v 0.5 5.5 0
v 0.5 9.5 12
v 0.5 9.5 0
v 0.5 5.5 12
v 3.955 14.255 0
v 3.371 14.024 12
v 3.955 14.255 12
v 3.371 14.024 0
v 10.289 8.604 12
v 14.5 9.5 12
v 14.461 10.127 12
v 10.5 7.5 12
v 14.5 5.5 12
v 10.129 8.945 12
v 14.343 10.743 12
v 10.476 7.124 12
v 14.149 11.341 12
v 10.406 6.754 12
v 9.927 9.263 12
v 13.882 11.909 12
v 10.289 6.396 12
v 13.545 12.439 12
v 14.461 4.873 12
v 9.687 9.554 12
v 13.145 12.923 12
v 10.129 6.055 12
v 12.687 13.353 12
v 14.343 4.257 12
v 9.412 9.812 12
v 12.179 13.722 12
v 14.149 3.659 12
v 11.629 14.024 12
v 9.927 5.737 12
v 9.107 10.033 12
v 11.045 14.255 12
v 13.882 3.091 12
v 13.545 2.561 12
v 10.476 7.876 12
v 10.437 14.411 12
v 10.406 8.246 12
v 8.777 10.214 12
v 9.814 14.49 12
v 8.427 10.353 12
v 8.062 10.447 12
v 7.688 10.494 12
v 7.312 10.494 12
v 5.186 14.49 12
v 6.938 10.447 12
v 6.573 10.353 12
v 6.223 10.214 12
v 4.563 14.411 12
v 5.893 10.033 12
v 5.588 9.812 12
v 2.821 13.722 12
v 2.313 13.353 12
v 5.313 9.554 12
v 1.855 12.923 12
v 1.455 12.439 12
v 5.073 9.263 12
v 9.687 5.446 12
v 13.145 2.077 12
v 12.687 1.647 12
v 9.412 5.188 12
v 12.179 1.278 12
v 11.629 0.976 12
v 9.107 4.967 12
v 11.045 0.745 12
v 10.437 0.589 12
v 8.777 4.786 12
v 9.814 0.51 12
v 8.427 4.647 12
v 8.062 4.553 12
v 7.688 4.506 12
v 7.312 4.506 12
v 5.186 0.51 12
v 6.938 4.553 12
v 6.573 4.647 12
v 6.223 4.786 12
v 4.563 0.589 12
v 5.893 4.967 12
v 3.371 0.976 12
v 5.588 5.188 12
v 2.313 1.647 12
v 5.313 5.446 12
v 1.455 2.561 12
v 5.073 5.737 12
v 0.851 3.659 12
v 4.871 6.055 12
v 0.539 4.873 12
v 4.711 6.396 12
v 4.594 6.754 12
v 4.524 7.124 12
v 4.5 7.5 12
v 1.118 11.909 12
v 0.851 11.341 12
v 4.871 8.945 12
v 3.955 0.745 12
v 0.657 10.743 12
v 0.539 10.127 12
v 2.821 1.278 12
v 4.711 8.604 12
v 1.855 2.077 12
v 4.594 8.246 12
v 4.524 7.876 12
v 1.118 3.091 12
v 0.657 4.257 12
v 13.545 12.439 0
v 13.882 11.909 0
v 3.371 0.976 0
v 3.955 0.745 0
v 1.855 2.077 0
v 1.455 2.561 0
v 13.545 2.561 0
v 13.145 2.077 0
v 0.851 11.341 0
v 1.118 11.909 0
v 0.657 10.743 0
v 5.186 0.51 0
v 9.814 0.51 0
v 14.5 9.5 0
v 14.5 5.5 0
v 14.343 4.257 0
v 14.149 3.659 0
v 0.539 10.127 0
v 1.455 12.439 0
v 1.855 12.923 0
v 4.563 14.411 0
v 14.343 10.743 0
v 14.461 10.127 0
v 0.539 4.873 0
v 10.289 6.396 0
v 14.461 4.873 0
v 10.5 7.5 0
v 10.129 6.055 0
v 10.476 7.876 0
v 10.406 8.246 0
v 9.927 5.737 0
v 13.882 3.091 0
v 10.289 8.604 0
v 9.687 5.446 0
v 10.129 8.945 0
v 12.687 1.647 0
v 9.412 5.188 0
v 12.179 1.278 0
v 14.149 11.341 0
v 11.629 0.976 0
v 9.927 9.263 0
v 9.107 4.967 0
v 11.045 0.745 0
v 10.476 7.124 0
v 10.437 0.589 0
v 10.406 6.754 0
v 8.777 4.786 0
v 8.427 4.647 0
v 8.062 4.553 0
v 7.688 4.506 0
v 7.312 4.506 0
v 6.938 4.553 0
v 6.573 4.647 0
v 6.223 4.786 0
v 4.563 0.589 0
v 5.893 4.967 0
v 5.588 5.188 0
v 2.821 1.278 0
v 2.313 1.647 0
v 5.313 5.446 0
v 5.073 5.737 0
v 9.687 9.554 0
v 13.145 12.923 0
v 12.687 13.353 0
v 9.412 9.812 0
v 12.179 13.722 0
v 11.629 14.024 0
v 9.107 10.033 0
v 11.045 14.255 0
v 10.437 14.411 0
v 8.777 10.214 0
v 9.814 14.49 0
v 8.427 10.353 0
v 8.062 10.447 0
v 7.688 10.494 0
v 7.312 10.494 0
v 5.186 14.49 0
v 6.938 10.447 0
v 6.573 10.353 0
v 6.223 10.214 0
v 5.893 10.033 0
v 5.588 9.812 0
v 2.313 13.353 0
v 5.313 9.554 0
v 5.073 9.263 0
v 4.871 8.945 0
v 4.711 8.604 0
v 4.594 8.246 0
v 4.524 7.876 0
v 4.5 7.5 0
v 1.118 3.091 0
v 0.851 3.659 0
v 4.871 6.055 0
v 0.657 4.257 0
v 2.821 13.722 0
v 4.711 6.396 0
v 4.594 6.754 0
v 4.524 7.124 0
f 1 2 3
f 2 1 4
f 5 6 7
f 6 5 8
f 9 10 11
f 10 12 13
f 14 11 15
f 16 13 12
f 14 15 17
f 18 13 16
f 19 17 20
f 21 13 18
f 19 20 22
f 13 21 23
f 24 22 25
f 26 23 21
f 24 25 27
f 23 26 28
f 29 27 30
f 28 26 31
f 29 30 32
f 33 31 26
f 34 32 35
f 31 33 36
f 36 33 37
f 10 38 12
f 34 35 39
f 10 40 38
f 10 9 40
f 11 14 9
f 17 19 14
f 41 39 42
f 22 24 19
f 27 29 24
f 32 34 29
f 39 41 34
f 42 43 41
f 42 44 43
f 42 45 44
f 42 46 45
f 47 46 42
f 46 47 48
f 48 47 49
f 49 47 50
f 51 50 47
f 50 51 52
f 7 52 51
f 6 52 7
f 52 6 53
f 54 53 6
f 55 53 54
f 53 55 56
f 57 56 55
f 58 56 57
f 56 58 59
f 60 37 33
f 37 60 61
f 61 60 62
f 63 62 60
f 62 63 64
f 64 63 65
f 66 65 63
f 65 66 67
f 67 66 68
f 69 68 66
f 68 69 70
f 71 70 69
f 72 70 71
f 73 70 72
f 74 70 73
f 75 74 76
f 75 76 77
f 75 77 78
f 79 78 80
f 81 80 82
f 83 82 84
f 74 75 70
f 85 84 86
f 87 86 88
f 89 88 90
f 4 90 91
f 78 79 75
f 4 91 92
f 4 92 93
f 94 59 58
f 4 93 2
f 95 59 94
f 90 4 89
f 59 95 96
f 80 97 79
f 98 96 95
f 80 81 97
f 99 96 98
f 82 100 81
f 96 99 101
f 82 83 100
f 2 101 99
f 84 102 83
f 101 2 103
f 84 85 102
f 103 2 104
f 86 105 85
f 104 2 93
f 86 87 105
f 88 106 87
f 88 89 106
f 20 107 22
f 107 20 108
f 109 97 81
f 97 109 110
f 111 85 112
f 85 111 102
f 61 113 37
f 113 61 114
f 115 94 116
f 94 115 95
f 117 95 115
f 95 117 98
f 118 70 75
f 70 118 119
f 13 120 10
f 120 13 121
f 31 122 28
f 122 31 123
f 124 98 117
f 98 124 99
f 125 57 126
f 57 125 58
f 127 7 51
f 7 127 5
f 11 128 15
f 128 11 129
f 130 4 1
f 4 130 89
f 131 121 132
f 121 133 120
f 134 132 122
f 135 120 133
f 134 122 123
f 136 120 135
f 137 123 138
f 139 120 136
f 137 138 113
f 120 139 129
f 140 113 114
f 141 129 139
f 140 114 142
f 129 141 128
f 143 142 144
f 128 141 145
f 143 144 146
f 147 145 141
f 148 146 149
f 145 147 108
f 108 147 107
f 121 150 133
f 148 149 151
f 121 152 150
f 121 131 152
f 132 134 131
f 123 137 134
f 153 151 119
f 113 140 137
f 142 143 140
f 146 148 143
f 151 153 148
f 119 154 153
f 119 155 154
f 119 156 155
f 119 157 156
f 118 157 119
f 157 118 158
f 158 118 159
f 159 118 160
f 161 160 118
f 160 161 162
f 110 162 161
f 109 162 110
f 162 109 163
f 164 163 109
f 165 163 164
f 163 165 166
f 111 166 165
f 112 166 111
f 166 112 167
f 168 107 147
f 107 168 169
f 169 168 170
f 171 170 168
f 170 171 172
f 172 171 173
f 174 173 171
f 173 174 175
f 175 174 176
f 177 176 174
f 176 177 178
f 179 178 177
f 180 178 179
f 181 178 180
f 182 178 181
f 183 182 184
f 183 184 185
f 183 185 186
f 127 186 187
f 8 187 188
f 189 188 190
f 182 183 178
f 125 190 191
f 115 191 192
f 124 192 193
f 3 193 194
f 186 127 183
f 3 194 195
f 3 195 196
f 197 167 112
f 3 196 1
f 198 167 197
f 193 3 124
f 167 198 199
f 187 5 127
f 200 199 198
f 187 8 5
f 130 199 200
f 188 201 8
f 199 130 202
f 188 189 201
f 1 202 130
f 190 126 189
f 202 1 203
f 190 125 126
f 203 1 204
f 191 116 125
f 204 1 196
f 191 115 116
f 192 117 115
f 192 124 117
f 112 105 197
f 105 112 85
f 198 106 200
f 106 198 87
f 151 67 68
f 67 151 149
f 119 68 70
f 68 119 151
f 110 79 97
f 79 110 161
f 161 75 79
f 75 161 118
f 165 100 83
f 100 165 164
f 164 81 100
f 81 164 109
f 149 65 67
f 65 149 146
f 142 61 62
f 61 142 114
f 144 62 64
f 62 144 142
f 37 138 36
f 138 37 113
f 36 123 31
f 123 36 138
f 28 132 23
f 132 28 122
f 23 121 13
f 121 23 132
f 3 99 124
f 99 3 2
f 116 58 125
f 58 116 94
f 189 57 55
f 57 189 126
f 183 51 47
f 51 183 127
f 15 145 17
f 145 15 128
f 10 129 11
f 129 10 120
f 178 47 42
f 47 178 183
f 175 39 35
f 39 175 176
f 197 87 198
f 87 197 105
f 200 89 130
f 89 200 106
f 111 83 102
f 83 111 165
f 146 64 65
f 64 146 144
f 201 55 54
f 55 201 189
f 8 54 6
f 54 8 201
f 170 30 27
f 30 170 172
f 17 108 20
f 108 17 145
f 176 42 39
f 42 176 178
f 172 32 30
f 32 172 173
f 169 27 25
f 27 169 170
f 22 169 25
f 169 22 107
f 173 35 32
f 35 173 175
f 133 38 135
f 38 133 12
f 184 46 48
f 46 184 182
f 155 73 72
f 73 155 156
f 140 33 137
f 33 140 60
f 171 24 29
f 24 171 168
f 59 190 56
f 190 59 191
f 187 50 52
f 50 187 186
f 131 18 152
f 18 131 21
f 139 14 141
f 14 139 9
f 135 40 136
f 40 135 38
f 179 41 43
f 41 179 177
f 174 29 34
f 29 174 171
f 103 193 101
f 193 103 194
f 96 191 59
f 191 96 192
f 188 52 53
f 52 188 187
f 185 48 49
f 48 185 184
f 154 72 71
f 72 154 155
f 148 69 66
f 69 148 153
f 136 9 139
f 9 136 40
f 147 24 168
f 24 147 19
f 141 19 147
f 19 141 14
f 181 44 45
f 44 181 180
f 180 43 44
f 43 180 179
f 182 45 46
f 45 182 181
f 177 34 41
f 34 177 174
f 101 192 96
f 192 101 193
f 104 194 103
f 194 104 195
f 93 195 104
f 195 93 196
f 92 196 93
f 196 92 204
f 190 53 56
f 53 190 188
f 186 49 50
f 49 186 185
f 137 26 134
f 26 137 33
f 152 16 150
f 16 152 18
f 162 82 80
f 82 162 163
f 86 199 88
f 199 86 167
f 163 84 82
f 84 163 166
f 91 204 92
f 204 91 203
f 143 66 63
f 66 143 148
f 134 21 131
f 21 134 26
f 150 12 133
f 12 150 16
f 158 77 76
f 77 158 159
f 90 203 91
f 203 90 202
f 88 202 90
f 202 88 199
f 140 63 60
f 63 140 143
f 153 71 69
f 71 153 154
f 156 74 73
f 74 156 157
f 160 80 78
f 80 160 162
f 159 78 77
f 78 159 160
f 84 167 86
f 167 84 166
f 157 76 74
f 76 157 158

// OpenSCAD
// Generated by SolidPython 1.1.3 on 2023-01-30 14:07:04
$fn = 50;


difference() {
	union() {
		translate(v = [7.5000000000, 7.5000000000, 0]) {
			rotate(a = [0, 0, 0]) {
				hull() {
					translate(v = [-2.0000000000, 2.0000000000, 0]) {
						rotate(a = [0, 0, 0]) {
							translate(v = [0, 0, 0]) {
								rotate(a = [0, 0, 0]) {
									cylinder(h = 12, r = 5);
								}
							}
						}
					}
					translate(v = [2.0000000000, 2.0000000000, 0]) {
						rotate(a = [0, 0, 0]) {
							translate(v = [0, 0, 0]) {
								rotate(a = [0, 0, 0]) {
									cylinder(h = 12, r = 5);
								}
							}
						}
					}
					translate(v = [-2.0000000000, -2.0000000000, 0]) {
						rotate(a = [0, 0, 0]) {
							translate(v = [0, 0, 0]) {
								rotate(a = [0, 0, 0]) {
									cylinder(h = 12, r = 5);
								}
							}
						}
					}
					translate(v = [2.0000000000, -2.0000000000, 0]) {
						rotate(a = [0, 0, 0]) {
							translate(v = [0, 0, 0]) {
								rotate(a = [0, 0, 0]) {
									cylinder(h = 12, r = 5);
								}
							}
						}
					}
				}
			}
		}
	}
	union() {
		translate(v = [7.5000000000, 7.5000000000, 0]) {
			rotate(a = [0, 0, 0]) {
				translate(v = [0, 0, -50]) {
					rotate(a = [0, 0, 0]) {
						cylinder(h = 100, r = 3.0000000000);
					}
				}
			}
		}
	}
}
/***********************************************
*********      SolidPython code:      **********
************************************************
 
from solid import *
import os
import subprocess

import oomB

import opsc_library_gen

mode = "laser"
#mode = "3d_print"

defined_objects = {}

radius_dict = {}
countersunk_dict = {}


def set_mode(m):
    global mode
    mode = m
    radius_dict['M6'] = 6.5/2
    radius_dict['M3'] = 3.3/2
    if mode == "laser":
        radius_dict['M6'] = 6/2
        radius_dict['M3'] = 3/2

    countersunk_dict['M3'] = {}
    countersunk_dict['M3']['little_rad'] = radius_dict['M3']
    countersunk_dict['M3']['big_rad'] = (5.5+0.6)/2
    if mode == "laser":
        countersunk_dict['M3']['big_rad'] = (4.75+0.6)/2
        countersunk_dict['M3']['little_rad'] = (4.75+0.6)/2

    countersunk_dict['M3']['height'] = 1.7


def opsc_make_object(filename, objects, save_type="none",resolution=50, layers = 1, tilediff = 200, mode="laser"):
    set_mode(mode)
    save_type = save_type.lower()
    os.makedirs(os.path.dirname(filename), exist_ok=True)
    final_object = opsc_get_object(objects)
    # Save the final object to the specified filename    
    scad_render_to_file(final_object, filename, file_header='$fn = %s;' % resolution, include_orig_code=True)
    if mode == "laser":
        filename_laser = filename.replace(".scad","-flat.scad")
        scad_render_to_file(getLaser(final_object, layers=layers, tilediff=tilediff), filename_laser, file_header='$fn = %s;' % resolution, include_orig_code=True)
        if save_type == "all":
            saveToAll(filename_laser)
        elif save_type == "dxf":
            saveToDxf(filename_laser)
    if save_type == "all":
        saveToAll(filename)
    elif save_type == "dxf":
        saveToDxf(filename)


def opsc_get_object(objects):
    # Create the solidpython objects
    positive_objects = [get_opsc_item(obj) for obj in objects if obj['type'] == 'positive']
    negative_objects = [get_opsc_item(obj) for obj in objects if obj['type'] == 'negative']
    # Union the positive objects
    positive_object = union()(*positive_objects)
    # Union the negative objects
    negative_object = union()(*negative_objects)
    # Create the final object by subtracting the negative objects from the positive objects
    return difference()(positive_object, negative_object)

def get_opsc_item(params):
    # A dictionary to map radius string values to numerical values
    #radius_dict = {'small': 5, 'medium': 10, 'large': 15}
    # An array of function names for basic shapes
    basic_shapes = ['cube', 'sphere', 'cylinder']
    
    # An array of function names for other shapes
    other_shapes = ['hole', 'slot', 'rounded_rectangle', 'countersunk']
    


    # Convert radius to r if present, and remove radius from the params dictionary
    if 'radius' in params:
        if isinstance(params['radius'], str):
            # Use the radius_dict to map the radius string value to a numerical value
            params['r'] = radius_dict[params['radius']]
        else:
            params['r'] = params['radius']
        del params['radius']
    

    # Check if the object type is a basic shape
    if params['shape'] in basic_shapes:
        # Remove shape and unexpected dictionary values
        allowed_keys = {'size', 'r', 'r1', 'r2', 'd', 'h', 'rw', 'rh', 'dw', 'dh'}
        shape_params = {k: v for k, v in params.items() if k in allowed_keys}

        # Call the corresponding function for the shape parameter, using ** notation to pass the shape_params dictionary as keyword arguments
        return get_opsc_transform(params,globals()[params['shape']](**shape_params))
    
    # If the object type is not a basic shape, check if it's a defined object or one of the other shapes
    elif params['shape'] in other_shapes:
        # Call the corresponding function for the shape parameter, passing the params dictionary as an argument
        p2 = copy.deepcopy(params)
        p2["pos"] = [0,0,0]
        return get_opsc_transform(params,globals()[params['shape']](p2))
    
    # If the object is not a basic shape or a defined object, try to import it from a .scad file
    else:
        obj = defined_objects[params['shape']]
        return get_opsc_transform(params,obj)

def get_opsc_transform(params, solid_obj):
    # Rotate the object based on the 'rot' field in the params dictionary, or the 'rotX', 'rotY', and 'rotZ' fields if 'rot' is not present
    rot = params.get('rot', [])
    if rot:
        rotX, rotY, rotZ = rot
    else:
        rotX = params.get('rotX', 0)
        rotY = params.get('rotY', 0)
        rotZ = params.get('rotZ', 0)
    solid_obj = rotate([rotX, rotY, rotZ])(solid_obj)

    # Translate the object based on the 'pos' field in the params dictionary, or the 'x', 'y', and 'z' fields if 'pos' is not present
    pos = params.get('pos', [])
    if pos:
        x, y, z = pos
    else:
        x = params.get('x', 0)
        y = params.get('y', 0)
        z = params.get('z', 0)
    solid_obj = translate([x, y, z])(solid_obj)
    return solid_obj


import random

def opsc_easy_array(type, shape, repeats, pos_start, shift_arr, **kwargs):
    for i in range(0,3):
        repeats.append(1)
        pos_start.append(0)
        shift_arr.append(0)
    return_objects = []

    for x in range(0,repeats[0]):
        for y in range(0,repeats[1]):
            for z in range(0,repeats[2]):
                return_objects.append(opsc_easy(type, shape, pos=[pos_start[0]+x*shift_arr[0],pos_start[1]+y*shift_arr[1],pos_start[2]+z*shift_arr[2]], **kwargs))
    return return_objects                



def opsc_easy(type, shape, **kwargs):
    obj = {
        'type': type,
        'shape': shape
    }
    for param in ['size', 'r', 'r1', 'r2', 'd', 'h', 'rw', 'rh', 'dw', 'dh', 'pos', 'x', 'y', 'z', 'rot', 'rotX', 'rotY', 'rotZ', "w"]:
        if param in kwargs:
            obj[param] = kwargs[param]
    return obj

def hole(params):
    p2 = copy.deepcopy(params)  
    # Check if the radius is a string and replace it with the corresponding value from the dictionary
    if isinstance(p2['r'], str):
        p2['r'] = radius_dict[p2['r']]
    
    # Set the height to 100 if not specified
    if 'h' not in p2:
        p2['h'] = 100
        p2["pos"] = [0,0,-50]
    p2["center"] = True
    # Create the cylinder object
    p2["shape"] = "cylinder"
    p2["type"] = "positive"

    return get_opsc_item(p2)

import copy

def countersunk(params):
    p2 = copy.deepcopy(params)
    counter_rad = p2['r']
    p2['r'] = radius_dict[p2['r']]
    hp = copy.deepcopy(p2)
    hp["type"] = "positive"
    hp["shape"] = "hole"
    del hp["rot"]
    hol = get_opsc_item(hp)
    
    cp = copy.deepcopy(p2)
    cp["h"] = countersunk_dict[counter_rad]["height"]
    cp["r2"] = countersunk_dict[counter_rad]["little_rad"]
    cp["r1"] = countersunk_dict[counter_rad]["big_rad"]
    del cp["r"]
    del cp["rot"]
    cp["type"] = "positive"
    cp["shape"] = "cylinder"
    cp["pos"] = [0,0,0]

    top = get_opsc_item(cp)
    return union()(hol,top)



def slot(params):  
    p2 = copy.deepcopy(params) 
    if isinstance(p2['r'], str):
        p2['r'] = radius_dict[p2['r']]
    p2["type"] = "positive"
    p2["shape"] = "hole"
    del p2["rot"]
    p2["pos"] = [0,0,0]
    left = copy.deepcopy(p2)
    right = copy.deepcopy(p2)
    left["pos"][0] = p2["w"] / 2 - p2["r"] 
    
    right["pos"][0] = -p2["w"] / 2 + p2["r"] 
    pass
    leftObj = get_opsc_item(left)
    rightObj = get_opsc_item(right)
    return hull()(leftObj, rightObj)

def rounded_rectangle(params):   
    p2 = copy.deepcopy(params) 
    p2["h"] = p2["size"][2]
    p2["pos"] = p2.get("pos", [0, 0, 0]) 
    p2["type"] = "positive"
    p2["shape"] = "hole"
    p2["pos"] = [0,0,0]
    
    if 'rot' in p2:
        del p2["rot"]   
    if 'r' not in p2:
        p2["r"] = 5 
    tl = copy.deepcopy(p2)
    tr = copy.deepcopy(p2)
    bl = copy.deepcopy(p2)
    br = copy.deepcopy(p2)
    tl["pos"][0] = -(p2["size"][0] - p2["r"]*2)/2
    tl["pos"][1] = (p2["size"][1] - p2["r"]*2)/2
    tr["pos"][0] = (p2["size"][0] - p2["r"]*2)/2
    tr["pos"][1] = (p2["size"][1] - p2["r"]*2)/2
    bl["pos"][0] = -(p2["size"][0] - p2["r"]*2)/2
    bl["pos"][1] = -(p2["size"][1] - p2["r"]*2)/2
    br["pos"][0] = (p2["size"][0] - p2["r"]*2)/2
    br["pos"][1] = -(p2["size"][1] - p2["r"]*2)/2
    del tl["size"]
    del tr["size"]
    del bl["size"]
    del br["size"]
    tlo = get_opsc_item(tl)
    tro = get_opsc_item(tr)
    blo = get_opsc_item(bl)
    bro = get_opsc_item(br)    
    return hull()(tlo, tro, blo, bro)



def import_scad_object(filename):
    # Import the .scad file and convert it to a solidpython object
    #filename = "parts"
    obj = import_scad(filename)
    return obj.main()
    


import os
import solid as solidpython

# A dictionary to store the defined objects


def load_scad_objects():
    opsc_library_gen.gen_library(defined_objects)

import random

def test(num_objects):
    objects = []
    for i in range(num_objects):
        # Choose a random shape
        #shape = random.choice(['cube', 'sphere', 'cylinder', 'hole', 'slot', "rounded_rectangle"])
        shape = random.choice(["rounded_rectangle"])

        # Choose a random type
        type = random.choice(['positive', 'negative'])
        
        # Create an empty object dictionary
        obj = {'shape': shape, 'type': type}
        
        # Set shape-specific parameters
        if obj['shape'] in ['cube']:
            obj['size'] =  [random.uniform(5, 15), random.uniform(5, 15), random.uniform(5, 15)]
        if obj['shape'] in ['rounded_rectangle']:
            obj['size'] =  [random.uniform(5, 15), random.uniform(5, 15), random.uniform(5, 15)]
            obj['r'] = random.uniform(0.5, 5)
        elif obj['shape'] == 'sphere':
            obj['r'] = random.uniform(5, 15)
        elif obj['shape'] in ['cylinder', 'hole']:
            obj['r'] = random.uniform(0.5, 5)
            obj['h'] = random.uniform(5, 15)
        elif obj['shape'] == 'slot':
            obj['r'] = random.uniform(0.5, 5)
            obj['h'] = random.uniform(5, 15)
            obj['w'] = random.uniform(5, 15)
        
        # Set a random position and rotation
        obj['pos'] = [random.uniform(-20, 20), random.uniform(-20, 20), random.uniform(-20, 20)]
        obj['rot'] = [random.uniform(-180, 180), random.uniform(-180, 180), random.uniform(-180, 180)]
        
        # Add the object to the list
        objects.append(obj)
    return objects

####### old file saving
def saveToAll(fileIn):
    saveToDxf(fileIn)
    saveToPng(fileIn)
    saveToStl(fileIn)
    saveToSvg(fileIn)

def saveToDxf(fileIn, fileOut="", copy_to_laser=True):
    if fileOut == "":
        fileOut = fileIn.replace(".scad",".dxf")
    saveToFile(fileIn, fileOut)


    
def saveToPng(fileIn, fileOut="",extra="--render"):
    if fileOut == "":
        fileOut = fileIn.replace(".scad",".png")
    saveToFile(fileIn, fileOut)

def saveToStl(fileIn, fileOut=""):
    if fileOut == "":
        fileOut = fileIn.replace(".scad",".stl")
    saveToFile(fileIn, fileOut)
    
def saveToSvg(fileIn, fileOut=""):
    if fileOut == "":
        fileOut = fileIn.replace(".scad",".svg")
    saveToFile(fileIn, fileOut)

def saveToFile(fileIn, fileOut,extra=""):
    #extra = extra + " --colorscheme Tomorrow"

    launchStr = 'openscad -o "' + fileOut + '"' + extra + ' "' + fileIn + '"'
    if ".png" in fileOut:
        launchStr = launchStr + " --render"
    print("            saveToFile launch string: " + launchStr)
    subprocess.run(launchStr)
    x=0

def getLaser(final_object,start=1.5,layers=1,thickness=3,tilediff=200):
        rv= []

        for x in range(layers):
            rv.append(translate([0,x*tilediff,0])(
                    projection()(
                        intersection()(translate([-500,-500,start+x*thickness])(cube(size=[1000,1000,0.1])),
                            final_object
                        )
                    )
            )
            )
            
        return union()(rv)

set_mode("laser")
load_scad_objects() 
 
************************************************/
